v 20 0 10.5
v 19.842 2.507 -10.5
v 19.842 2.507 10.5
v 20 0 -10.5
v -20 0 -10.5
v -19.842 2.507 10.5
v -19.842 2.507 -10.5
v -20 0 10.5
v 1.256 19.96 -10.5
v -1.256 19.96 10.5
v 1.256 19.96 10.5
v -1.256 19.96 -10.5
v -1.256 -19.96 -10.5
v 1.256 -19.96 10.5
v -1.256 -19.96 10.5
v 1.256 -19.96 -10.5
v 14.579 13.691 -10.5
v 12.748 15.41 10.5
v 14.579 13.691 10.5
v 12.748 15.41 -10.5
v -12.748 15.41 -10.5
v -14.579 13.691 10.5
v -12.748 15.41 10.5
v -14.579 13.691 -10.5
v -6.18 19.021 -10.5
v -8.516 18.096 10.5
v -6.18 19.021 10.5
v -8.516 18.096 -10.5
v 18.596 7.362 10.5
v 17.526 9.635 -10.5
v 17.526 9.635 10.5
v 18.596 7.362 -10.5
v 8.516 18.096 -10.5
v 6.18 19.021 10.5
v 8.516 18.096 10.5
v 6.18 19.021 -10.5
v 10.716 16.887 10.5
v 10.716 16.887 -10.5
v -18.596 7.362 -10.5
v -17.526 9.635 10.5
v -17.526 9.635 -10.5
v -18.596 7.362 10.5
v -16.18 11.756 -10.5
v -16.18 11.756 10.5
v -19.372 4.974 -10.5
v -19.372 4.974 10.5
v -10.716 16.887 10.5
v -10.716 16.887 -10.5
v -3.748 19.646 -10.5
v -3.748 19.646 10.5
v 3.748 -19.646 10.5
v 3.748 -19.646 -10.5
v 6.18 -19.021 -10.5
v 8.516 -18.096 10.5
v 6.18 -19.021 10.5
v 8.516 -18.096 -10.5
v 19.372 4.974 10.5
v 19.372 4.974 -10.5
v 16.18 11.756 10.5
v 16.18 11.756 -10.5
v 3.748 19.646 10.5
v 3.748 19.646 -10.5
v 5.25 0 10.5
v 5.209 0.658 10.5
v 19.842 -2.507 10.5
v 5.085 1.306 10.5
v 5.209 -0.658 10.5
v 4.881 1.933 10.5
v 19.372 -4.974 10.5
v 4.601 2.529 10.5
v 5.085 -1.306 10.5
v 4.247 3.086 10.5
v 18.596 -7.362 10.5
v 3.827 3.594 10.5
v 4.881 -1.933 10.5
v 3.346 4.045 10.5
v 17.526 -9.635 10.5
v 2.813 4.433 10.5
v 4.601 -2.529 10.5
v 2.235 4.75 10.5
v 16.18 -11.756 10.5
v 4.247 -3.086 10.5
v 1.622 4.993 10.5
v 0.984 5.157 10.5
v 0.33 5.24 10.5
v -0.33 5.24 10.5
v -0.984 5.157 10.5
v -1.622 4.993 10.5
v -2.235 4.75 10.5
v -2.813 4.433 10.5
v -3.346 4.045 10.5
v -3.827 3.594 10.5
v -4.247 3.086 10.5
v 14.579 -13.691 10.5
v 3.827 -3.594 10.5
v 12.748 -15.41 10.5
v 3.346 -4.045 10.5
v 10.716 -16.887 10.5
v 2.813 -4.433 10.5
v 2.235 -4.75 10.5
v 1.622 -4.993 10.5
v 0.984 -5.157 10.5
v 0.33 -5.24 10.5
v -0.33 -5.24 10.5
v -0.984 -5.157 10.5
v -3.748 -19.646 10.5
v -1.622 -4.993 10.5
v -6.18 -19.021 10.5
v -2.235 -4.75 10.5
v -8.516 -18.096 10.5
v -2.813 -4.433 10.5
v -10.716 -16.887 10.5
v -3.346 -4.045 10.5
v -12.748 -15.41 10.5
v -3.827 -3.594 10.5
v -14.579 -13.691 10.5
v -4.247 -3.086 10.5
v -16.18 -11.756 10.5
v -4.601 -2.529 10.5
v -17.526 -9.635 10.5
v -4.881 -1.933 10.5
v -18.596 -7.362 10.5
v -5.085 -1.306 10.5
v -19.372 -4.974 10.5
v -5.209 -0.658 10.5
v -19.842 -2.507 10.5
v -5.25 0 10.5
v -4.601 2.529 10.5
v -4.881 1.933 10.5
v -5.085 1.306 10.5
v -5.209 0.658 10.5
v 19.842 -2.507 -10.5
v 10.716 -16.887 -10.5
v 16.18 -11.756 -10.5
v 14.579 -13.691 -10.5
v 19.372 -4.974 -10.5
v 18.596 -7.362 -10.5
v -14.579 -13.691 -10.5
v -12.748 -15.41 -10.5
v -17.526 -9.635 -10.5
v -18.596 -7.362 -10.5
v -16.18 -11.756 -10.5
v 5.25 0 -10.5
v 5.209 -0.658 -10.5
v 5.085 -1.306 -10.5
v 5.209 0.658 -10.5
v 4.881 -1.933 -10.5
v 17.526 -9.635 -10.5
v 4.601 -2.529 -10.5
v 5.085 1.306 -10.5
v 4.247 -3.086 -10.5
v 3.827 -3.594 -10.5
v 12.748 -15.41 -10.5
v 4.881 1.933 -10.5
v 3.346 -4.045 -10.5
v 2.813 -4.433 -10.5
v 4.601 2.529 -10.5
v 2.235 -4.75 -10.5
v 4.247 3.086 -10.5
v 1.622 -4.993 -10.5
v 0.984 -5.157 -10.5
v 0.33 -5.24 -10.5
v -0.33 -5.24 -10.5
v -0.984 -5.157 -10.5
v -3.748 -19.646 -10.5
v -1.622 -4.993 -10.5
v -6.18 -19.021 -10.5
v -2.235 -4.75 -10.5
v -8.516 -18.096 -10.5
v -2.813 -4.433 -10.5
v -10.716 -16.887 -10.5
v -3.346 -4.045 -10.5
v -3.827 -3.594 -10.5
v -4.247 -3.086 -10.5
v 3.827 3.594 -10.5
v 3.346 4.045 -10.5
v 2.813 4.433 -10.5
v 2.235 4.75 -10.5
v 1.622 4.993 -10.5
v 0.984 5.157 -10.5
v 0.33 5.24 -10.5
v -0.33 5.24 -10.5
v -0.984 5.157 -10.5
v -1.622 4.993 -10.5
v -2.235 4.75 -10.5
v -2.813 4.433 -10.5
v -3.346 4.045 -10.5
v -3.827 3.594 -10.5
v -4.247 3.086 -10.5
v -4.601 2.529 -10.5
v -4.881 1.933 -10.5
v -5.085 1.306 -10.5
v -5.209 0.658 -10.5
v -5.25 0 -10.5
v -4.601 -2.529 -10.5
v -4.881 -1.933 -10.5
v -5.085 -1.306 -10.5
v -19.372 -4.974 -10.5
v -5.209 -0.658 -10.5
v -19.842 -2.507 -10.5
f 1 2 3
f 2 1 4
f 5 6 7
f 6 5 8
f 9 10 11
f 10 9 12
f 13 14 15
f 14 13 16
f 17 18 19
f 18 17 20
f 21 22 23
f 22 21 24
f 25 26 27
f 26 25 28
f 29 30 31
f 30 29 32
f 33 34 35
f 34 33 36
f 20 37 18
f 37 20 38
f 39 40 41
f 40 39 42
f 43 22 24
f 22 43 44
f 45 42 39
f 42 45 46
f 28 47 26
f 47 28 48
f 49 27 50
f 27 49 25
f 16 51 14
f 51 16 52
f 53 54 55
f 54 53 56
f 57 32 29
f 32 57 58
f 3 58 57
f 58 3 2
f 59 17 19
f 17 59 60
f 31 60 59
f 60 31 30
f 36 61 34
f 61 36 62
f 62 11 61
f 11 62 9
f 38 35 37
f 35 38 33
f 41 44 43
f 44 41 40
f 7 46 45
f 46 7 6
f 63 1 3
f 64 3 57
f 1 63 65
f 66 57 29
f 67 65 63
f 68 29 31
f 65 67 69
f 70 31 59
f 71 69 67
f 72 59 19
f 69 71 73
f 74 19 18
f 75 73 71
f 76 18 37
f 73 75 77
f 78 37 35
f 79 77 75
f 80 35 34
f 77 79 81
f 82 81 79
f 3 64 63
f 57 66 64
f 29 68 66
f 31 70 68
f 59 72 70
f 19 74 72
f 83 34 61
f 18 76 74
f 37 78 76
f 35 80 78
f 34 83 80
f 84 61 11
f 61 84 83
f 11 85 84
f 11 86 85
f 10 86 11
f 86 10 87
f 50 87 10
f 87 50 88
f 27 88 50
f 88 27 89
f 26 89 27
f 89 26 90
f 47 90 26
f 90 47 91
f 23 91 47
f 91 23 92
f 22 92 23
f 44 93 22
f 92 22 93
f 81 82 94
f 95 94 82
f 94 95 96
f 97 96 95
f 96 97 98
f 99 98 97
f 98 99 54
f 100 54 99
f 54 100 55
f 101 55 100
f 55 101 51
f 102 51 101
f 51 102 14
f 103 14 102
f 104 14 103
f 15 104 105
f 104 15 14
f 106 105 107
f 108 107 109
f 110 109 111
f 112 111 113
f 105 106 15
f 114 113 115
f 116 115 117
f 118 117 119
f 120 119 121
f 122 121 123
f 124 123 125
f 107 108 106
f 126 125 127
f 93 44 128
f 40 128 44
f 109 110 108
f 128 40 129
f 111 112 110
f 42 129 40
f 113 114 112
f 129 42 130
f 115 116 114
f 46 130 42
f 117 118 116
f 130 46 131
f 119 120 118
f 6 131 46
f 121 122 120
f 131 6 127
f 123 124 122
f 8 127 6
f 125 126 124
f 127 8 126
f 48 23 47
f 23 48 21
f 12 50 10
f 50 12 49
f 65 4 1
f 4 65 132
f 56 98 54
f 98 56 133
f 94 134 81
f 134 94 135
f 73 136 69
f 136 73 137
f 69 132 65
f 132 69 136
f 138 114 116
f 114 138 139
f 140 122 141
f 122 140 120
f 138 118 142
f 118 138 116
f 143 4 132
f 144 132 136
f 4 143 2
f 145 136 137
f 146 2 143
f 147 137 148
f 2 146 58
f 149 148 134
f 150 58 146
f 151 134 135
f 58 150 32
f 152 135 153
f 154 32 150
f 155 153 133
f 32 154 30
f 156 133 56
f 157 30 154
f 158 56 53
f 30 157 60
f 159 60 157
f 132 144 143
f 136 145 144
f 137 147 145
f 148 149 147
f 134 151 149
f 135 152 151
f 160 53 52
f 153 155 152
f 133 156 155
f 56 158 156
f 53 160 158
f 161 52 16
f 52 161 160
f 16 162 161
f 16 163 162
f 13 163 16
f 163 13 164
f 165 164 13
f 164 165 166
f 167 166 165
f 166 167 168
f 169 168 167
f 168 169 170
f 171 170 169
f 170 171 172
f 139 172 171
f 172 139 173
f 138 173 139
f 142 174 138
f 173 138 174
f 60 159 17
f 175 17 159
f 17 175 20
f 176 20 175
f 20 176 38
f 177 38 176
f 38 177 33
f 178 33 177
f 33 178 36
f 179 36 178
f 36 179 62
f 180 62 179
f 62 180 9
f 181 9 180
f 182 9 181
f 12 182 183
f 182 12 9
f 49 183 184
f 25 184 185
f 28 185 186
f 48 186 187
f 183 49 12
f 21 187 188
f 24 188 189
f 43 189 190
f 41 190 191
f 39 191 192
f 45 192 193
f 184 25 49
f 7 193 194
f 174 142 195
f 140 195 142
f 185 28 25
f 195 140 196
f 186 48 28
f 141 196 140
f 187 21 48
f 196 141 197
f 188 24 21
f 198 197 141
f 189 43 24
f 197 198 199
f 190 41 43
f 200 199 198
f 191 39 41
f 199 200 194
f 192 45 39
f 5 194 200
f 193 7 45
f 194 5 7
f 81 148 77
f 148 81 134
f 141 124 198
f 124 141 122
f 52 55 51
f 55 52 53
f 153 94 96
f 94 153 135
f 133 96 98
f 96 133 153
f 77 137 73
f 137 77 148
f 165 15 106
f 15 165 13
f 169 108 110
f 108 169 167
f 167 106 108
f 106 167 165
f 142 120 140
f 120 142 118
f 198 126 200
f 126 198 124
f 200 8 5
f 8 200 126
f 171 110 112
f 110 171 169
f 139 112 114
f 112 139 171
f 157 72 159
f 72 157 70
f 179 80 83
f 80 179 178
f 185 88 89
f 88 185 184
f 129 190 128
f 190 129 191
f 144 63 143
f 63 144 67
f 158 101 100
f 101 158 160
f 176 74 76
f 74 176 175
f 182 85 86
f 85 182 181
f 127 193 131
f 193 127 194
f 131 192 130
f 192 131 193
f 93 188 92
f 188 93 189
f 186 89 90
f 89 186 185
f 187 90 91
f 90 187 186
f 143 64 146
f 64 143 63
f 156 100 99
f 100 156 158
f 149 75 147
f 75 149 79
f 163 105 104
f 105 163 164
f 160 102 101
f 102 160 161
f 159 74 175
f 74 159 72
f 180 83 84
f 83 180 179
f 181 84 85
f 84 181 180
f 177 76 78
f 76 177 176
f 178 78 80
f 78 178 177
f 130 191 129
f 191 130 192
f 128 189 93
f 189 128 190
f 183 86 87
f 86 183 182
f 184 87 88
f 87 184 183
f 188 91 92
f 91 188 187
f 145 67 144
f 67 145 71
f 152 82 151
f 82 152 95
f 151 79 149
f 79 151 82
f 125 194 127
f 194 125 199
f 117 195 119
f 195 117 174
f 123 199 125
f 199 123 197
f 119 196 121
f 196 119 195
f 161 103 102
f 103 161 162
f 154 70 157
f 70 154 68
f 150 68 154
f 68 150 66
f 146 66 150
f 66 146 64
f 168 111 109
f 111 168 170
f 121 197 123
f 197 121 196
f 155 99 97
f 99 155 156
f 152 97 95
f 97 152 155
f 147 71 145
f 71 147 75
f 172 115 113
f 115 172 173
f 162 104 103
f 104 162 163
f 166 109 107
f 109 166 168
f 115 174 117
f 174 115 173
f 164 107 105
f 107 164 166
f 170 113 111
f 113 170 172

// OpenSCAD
$fn = 50;


difference() {
	union() {
		translate(v = [0, 0, -10.5000000000]) {
			cylinder(h = 21, r = 20.0000000000);
		}
	}
	union() {
		translate(v = [0, 0, -100.0000000000]) {
			cylinder(h = 200, r = 5.2500000000);
		}
	}
}
